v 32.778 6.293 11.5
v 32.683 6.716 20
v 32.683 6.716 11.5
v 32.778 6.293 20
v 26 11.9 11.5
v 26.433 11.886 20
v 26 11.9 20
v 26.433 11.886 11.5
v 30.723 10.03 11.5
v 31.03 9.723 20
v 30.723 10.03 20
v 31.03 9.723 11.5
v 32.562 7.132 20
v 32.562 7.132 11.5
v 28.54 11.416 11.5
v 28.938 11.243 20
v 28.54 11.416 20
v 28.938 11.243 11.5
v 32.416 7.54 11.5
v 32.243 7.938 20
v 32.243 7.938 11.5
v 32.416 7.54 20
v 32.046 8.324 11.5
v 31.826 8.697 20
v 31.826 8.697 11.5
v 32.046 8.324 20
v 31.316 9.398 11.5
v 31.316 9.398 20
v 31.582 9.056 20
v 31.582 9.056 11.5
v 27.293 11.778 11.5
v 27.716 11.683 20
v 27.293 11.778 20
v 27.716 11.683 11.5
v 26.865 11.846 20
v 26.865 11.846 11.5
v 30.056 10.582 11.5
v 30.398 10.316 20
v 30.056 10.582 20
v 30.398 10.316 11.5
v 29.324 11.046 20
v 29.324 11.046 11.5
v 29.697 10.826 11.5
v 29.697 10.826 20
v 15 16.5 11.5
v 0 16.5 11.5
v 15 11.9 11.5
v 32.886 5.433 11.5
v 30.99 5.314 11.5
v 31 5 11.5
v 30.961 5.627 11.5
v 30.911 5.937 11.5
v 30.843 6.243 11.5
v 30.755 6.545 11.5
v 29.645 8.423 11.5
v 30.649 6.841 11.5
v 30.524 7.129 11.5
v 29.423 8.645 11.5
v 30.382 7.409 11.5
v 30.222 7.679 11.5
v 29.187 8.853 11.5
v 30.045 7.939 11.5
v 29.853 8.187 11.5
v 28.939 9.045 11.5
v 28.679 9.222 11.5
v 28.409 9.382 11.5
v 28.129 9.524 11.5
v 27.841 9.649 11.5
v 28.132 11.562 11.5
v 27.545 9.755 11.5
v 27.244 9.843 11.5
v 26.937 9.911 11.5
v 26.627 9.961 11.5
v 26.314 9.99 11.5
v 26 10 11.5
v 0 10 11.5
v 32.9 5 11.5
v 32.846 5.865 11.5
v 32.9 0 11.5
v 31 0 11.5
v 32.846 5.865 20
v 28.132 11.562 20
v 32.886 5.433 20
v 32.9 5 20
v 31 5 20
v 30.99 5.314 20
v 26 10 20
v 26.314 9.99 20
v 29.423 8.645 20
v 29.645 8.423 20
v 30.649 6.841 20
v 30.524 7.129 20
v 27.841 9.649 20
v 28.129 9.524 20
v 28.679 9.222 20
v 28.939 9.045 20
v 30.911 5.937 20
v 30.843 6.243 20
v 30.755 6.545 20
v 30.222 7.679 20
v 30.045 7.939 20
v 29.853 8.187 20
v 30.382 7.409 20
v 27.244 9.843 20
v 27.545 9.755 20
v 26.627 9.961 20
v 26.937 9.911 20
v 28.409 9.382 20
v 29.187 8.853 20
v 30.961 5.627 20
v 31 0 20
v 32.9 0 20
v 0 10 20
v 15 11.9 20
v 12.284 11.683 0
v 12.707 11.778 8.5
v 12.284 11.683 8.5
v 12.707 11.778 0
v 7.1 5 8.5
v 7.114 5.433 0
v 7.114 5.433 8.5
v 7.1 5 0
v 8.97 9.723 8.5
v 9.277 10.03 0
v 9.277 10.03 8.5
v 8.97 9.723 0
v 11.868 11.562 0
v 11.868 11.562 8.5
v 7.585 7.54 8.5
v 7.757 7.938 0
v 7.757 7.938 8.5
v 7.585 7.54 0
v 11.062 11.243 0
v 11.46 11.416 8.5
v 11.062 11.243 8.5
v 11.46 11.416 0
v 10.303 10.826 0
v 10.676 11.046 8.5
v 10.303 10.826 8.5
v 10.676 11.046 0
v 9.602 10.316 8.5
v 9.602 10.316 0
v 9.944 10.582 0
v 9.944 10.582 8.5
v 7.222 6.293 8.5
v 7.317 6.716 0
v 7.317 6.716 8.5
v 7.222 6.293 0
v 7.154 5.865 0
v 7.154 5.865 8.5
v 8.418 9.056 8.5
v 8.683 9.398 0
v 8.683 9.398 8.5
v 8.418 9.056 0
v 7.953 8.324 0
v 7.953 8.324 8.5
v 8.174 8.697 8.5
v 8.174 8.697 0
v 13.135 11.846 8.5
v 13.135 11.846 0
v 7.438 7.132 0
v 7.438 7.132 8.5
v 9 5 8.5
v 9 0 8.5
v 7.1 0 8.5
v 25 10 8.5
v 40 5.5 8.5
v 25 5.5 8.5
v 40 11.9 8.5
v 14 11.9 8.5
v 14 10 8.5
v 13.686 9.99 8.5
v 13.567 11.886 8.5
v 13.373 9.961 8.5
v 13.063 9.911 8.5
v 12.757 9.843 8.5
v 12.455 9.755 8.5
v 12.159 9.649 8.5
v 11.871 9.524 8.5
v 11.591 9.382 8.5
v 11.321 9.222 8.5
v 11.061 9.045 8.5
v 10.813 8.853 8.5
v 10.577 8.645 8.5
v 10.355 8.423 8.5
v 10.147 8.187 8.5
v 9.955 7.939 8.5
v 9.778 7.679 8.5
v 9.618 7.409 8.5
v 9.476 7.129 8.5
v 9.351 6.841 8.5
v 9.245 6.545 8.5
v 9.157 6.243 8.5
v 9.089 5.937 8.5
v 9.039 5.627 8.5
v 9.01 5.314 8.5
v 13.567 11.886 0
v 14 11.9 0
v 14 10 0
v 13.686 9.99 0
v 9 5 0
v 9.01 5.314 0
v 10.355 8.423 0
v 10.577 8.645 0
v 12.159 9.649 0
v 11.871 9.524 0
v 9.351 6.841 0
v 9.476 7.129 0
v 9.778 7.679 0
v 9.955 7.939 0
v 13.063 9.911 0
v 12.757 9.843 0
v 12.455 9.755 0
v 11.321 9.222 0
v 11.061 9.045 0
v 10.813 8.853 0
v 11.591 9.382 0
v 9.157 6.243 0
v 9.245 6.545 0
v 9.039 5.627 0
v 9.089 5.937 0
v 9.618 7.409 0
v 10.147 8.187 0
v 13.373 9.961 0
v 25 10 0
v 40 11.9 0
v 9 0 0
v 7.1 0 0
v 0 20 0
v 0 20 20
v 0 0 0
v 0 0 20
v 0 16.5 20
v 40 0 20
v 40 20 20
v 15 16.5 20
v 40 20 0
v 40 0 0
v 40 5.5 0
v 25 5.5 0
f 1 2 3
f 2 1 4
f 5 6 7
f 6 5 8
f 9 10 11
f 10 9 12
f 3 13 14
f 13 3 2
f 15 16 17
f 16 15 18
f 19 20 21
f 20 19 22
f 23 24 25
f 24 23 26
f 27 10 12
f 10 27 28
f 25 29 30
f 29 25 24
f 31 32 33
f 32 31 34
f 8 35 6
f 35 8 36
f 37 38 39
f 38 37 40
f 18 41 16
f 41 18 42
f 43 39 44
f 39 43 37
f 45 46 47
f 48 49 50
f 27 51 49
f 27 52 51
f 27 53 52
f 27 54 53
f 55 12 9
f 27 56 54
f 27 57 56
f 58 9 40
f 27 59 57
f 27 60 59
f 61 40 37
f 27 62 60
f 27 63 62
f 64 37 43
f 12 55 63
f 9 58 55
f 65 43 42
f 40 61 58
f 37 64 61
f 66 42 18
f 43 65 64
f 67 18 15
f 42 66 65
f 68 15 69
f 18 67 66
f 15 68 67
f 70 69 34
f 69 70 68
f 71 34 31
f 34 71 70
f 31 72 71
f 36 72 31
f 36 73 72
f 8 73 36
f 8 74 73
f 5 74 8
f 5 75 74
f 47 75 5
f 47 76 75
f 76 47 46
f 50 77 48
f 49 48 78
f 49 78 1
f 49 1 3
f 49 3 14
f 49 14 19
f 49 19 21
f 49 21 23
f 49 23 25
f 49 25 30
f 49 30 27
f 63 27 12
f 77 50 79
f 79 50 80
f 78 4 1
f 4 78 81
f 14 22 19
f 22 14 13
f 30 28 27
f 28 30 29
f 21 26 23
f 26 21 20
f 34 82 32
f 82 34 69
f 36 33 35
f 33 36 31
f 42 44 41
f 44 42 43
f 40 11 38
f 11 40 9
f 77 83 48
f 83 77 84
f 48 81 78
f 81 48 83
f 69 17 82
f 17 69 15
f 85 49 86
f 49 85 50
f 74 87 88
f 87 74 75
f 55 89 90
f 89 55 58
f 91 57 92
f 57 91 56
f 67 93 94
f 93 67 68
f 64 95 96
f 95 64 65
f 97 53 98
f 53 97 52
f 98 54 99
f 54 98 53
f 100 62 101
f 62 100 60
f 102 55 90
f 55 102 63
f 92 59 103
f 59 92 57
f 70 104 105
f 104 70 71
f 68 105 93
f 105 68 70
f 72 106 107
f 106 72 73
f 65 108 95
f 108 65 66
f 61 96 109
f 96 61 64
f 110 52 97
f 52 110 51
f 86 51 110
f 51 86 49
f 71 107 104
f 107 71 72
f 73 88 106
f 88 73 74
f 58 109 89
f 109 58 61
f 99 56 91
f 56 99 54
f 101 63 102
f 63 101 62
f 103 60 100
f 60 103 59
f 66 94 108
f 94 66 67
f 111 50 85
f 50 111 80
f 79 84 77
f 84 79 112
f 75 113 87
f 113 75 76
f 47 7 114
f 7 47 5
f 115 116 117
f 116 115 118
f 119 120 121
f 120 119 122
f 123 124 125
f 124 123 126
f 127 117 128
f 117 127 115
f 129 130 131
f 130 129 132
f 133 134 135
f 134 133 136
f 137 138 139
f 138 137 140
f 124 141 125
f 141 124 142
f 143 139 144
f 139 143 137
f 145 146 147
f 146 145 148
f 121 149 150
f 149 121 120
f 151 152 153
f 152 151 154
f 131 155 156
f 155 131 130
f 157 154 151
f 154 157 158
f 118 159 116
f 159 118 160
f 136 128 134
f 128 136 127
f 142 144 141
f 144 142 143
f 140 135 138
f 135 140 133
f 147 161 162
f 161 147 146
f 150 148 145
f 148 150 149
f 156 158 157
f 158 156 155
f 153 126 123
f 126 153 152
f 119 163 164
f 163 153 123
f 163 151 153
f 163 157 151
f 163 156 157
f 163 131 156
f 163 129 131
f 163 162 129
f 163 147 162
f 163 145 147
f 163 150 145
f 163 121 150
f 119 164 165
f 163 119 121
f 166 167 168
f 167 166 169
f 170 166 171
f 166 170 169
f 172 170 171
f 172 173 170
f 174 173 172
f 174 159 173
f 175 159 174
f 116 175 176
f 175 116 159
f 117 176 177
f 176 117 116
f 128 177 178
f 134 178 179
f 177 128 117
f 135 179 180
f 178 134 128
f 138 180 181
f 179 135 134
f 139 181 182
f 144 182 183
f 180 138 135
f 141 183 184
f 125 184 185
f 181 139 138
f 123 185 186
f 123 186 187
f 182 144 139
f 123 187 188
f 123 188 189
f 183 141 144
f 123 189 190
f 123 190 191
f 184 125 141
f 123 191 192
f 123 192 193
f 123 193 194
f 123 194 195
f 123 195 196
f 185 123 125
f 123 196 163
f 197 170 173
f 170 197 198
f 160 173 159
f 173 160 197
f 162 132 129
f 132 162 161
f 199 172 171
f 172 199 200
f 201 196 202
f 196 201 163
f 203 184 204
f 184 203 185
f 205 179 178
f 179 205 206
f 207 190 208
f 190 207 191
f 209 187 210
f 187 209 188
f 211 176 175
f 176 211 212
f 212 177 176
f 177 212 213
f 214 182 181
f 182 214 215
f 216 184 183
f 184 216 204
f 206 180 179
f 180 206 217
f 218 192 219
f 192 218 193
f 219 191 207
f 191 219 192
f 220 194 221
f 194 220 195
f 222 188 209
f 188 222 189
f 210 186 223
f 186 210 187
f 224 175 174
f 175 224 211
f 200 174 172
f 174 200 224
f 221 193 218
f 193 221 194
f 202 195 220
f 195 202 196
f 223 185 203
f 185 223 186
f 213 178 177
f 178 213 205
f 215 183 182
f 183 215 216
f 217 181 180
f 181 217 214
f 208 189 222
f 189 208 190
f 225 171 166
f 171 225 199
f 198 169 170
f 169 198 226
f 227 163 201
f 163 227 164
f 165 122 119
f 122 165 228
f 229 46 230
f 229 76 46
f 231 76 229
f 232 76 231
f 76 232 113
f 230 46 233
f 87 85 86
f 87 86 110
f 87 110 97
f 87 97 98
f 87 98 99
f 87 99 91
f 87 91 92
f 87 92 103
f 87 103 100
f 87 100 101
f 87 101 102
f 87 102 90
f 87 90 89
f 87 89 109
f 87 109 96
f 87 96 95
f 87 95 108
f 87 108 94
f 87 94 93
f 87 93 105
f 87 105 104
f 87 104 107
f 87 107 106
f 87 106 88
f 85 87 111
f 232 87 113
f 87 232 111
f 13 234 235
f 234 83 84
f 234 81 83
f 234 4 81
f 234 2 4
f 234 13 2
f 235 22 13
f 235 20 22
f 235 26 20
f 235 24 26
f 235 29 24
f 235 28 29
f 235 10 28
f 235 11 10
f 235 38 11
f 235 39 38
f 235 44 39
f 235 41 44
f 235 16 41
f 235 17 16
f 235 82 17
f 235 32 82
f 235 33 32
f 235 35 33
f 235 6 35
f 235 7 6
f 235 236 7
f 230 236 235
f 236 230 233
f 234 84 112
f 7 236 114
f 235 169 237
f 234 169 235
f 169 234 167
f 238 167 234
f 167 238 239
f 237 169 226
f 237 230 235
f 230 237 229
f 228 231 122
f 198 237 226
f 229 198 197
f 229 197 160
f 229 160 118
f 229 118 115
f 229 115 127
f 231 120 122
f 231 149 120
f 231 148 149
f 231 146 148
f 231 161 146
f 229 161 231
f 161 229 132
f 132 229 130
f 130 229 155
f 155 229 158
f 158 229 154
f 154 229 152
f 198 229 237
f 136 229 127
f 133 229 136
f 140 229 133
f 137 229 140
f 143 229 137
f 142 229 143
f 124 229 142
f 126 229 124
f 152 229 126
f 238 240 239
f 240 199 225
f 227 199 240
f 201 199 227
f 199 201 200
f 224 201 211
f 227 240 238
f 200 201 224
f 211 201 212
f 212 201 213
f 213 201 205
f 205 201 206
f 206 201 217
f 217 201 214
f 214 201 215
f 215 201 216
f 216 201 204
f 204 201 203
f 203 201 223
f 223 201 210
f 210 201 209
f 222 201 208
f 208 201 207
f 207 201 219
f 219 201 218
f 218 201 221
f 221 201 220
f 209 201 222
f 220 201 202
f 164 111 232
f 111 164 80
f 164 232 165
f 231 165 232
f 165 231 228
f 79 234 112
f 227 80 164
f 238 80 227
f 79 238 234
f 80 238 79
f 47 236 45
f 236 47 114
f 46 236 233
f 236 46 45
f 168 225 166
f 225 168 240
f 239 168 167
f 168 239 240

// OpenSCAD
rr=8;

$fn=100;


module chanal(r_c=5, w_c=1.9, h_c=9, ll=50){
    intersection(){
    difference(){
        cylinder(r=r_c+w_c, h=h_c);
        cylinder(r=r_c, h=h_c);
        }
    cube([r_c+w_c,r_c+w_c,h_c]);
    }
    translate([r_c,-ll,0])cube([w_c,ll,h_c]);
    translate([-ll,r_c,0])cube([ll,w_c,h_c]);
}
    
//    chanal();

module chanal_mm(){
    translate([26,-5,11.5])rotate()chanal();
    translate([14,-5,-0.5])rotate([0,0,90])chanal();

    }

module main(){
difference(){
    cube([40,20,20]);
    translate([20,30,0])cylinder(r=rr,h=30);
    translate([0,10,0])rotate([0])chanal_mm();
    translate([0,11.5,11.5])cube([15,5,8.5]);
    translate([25,5.5,0])cube([15,5,8.5]);
}
}
main();
